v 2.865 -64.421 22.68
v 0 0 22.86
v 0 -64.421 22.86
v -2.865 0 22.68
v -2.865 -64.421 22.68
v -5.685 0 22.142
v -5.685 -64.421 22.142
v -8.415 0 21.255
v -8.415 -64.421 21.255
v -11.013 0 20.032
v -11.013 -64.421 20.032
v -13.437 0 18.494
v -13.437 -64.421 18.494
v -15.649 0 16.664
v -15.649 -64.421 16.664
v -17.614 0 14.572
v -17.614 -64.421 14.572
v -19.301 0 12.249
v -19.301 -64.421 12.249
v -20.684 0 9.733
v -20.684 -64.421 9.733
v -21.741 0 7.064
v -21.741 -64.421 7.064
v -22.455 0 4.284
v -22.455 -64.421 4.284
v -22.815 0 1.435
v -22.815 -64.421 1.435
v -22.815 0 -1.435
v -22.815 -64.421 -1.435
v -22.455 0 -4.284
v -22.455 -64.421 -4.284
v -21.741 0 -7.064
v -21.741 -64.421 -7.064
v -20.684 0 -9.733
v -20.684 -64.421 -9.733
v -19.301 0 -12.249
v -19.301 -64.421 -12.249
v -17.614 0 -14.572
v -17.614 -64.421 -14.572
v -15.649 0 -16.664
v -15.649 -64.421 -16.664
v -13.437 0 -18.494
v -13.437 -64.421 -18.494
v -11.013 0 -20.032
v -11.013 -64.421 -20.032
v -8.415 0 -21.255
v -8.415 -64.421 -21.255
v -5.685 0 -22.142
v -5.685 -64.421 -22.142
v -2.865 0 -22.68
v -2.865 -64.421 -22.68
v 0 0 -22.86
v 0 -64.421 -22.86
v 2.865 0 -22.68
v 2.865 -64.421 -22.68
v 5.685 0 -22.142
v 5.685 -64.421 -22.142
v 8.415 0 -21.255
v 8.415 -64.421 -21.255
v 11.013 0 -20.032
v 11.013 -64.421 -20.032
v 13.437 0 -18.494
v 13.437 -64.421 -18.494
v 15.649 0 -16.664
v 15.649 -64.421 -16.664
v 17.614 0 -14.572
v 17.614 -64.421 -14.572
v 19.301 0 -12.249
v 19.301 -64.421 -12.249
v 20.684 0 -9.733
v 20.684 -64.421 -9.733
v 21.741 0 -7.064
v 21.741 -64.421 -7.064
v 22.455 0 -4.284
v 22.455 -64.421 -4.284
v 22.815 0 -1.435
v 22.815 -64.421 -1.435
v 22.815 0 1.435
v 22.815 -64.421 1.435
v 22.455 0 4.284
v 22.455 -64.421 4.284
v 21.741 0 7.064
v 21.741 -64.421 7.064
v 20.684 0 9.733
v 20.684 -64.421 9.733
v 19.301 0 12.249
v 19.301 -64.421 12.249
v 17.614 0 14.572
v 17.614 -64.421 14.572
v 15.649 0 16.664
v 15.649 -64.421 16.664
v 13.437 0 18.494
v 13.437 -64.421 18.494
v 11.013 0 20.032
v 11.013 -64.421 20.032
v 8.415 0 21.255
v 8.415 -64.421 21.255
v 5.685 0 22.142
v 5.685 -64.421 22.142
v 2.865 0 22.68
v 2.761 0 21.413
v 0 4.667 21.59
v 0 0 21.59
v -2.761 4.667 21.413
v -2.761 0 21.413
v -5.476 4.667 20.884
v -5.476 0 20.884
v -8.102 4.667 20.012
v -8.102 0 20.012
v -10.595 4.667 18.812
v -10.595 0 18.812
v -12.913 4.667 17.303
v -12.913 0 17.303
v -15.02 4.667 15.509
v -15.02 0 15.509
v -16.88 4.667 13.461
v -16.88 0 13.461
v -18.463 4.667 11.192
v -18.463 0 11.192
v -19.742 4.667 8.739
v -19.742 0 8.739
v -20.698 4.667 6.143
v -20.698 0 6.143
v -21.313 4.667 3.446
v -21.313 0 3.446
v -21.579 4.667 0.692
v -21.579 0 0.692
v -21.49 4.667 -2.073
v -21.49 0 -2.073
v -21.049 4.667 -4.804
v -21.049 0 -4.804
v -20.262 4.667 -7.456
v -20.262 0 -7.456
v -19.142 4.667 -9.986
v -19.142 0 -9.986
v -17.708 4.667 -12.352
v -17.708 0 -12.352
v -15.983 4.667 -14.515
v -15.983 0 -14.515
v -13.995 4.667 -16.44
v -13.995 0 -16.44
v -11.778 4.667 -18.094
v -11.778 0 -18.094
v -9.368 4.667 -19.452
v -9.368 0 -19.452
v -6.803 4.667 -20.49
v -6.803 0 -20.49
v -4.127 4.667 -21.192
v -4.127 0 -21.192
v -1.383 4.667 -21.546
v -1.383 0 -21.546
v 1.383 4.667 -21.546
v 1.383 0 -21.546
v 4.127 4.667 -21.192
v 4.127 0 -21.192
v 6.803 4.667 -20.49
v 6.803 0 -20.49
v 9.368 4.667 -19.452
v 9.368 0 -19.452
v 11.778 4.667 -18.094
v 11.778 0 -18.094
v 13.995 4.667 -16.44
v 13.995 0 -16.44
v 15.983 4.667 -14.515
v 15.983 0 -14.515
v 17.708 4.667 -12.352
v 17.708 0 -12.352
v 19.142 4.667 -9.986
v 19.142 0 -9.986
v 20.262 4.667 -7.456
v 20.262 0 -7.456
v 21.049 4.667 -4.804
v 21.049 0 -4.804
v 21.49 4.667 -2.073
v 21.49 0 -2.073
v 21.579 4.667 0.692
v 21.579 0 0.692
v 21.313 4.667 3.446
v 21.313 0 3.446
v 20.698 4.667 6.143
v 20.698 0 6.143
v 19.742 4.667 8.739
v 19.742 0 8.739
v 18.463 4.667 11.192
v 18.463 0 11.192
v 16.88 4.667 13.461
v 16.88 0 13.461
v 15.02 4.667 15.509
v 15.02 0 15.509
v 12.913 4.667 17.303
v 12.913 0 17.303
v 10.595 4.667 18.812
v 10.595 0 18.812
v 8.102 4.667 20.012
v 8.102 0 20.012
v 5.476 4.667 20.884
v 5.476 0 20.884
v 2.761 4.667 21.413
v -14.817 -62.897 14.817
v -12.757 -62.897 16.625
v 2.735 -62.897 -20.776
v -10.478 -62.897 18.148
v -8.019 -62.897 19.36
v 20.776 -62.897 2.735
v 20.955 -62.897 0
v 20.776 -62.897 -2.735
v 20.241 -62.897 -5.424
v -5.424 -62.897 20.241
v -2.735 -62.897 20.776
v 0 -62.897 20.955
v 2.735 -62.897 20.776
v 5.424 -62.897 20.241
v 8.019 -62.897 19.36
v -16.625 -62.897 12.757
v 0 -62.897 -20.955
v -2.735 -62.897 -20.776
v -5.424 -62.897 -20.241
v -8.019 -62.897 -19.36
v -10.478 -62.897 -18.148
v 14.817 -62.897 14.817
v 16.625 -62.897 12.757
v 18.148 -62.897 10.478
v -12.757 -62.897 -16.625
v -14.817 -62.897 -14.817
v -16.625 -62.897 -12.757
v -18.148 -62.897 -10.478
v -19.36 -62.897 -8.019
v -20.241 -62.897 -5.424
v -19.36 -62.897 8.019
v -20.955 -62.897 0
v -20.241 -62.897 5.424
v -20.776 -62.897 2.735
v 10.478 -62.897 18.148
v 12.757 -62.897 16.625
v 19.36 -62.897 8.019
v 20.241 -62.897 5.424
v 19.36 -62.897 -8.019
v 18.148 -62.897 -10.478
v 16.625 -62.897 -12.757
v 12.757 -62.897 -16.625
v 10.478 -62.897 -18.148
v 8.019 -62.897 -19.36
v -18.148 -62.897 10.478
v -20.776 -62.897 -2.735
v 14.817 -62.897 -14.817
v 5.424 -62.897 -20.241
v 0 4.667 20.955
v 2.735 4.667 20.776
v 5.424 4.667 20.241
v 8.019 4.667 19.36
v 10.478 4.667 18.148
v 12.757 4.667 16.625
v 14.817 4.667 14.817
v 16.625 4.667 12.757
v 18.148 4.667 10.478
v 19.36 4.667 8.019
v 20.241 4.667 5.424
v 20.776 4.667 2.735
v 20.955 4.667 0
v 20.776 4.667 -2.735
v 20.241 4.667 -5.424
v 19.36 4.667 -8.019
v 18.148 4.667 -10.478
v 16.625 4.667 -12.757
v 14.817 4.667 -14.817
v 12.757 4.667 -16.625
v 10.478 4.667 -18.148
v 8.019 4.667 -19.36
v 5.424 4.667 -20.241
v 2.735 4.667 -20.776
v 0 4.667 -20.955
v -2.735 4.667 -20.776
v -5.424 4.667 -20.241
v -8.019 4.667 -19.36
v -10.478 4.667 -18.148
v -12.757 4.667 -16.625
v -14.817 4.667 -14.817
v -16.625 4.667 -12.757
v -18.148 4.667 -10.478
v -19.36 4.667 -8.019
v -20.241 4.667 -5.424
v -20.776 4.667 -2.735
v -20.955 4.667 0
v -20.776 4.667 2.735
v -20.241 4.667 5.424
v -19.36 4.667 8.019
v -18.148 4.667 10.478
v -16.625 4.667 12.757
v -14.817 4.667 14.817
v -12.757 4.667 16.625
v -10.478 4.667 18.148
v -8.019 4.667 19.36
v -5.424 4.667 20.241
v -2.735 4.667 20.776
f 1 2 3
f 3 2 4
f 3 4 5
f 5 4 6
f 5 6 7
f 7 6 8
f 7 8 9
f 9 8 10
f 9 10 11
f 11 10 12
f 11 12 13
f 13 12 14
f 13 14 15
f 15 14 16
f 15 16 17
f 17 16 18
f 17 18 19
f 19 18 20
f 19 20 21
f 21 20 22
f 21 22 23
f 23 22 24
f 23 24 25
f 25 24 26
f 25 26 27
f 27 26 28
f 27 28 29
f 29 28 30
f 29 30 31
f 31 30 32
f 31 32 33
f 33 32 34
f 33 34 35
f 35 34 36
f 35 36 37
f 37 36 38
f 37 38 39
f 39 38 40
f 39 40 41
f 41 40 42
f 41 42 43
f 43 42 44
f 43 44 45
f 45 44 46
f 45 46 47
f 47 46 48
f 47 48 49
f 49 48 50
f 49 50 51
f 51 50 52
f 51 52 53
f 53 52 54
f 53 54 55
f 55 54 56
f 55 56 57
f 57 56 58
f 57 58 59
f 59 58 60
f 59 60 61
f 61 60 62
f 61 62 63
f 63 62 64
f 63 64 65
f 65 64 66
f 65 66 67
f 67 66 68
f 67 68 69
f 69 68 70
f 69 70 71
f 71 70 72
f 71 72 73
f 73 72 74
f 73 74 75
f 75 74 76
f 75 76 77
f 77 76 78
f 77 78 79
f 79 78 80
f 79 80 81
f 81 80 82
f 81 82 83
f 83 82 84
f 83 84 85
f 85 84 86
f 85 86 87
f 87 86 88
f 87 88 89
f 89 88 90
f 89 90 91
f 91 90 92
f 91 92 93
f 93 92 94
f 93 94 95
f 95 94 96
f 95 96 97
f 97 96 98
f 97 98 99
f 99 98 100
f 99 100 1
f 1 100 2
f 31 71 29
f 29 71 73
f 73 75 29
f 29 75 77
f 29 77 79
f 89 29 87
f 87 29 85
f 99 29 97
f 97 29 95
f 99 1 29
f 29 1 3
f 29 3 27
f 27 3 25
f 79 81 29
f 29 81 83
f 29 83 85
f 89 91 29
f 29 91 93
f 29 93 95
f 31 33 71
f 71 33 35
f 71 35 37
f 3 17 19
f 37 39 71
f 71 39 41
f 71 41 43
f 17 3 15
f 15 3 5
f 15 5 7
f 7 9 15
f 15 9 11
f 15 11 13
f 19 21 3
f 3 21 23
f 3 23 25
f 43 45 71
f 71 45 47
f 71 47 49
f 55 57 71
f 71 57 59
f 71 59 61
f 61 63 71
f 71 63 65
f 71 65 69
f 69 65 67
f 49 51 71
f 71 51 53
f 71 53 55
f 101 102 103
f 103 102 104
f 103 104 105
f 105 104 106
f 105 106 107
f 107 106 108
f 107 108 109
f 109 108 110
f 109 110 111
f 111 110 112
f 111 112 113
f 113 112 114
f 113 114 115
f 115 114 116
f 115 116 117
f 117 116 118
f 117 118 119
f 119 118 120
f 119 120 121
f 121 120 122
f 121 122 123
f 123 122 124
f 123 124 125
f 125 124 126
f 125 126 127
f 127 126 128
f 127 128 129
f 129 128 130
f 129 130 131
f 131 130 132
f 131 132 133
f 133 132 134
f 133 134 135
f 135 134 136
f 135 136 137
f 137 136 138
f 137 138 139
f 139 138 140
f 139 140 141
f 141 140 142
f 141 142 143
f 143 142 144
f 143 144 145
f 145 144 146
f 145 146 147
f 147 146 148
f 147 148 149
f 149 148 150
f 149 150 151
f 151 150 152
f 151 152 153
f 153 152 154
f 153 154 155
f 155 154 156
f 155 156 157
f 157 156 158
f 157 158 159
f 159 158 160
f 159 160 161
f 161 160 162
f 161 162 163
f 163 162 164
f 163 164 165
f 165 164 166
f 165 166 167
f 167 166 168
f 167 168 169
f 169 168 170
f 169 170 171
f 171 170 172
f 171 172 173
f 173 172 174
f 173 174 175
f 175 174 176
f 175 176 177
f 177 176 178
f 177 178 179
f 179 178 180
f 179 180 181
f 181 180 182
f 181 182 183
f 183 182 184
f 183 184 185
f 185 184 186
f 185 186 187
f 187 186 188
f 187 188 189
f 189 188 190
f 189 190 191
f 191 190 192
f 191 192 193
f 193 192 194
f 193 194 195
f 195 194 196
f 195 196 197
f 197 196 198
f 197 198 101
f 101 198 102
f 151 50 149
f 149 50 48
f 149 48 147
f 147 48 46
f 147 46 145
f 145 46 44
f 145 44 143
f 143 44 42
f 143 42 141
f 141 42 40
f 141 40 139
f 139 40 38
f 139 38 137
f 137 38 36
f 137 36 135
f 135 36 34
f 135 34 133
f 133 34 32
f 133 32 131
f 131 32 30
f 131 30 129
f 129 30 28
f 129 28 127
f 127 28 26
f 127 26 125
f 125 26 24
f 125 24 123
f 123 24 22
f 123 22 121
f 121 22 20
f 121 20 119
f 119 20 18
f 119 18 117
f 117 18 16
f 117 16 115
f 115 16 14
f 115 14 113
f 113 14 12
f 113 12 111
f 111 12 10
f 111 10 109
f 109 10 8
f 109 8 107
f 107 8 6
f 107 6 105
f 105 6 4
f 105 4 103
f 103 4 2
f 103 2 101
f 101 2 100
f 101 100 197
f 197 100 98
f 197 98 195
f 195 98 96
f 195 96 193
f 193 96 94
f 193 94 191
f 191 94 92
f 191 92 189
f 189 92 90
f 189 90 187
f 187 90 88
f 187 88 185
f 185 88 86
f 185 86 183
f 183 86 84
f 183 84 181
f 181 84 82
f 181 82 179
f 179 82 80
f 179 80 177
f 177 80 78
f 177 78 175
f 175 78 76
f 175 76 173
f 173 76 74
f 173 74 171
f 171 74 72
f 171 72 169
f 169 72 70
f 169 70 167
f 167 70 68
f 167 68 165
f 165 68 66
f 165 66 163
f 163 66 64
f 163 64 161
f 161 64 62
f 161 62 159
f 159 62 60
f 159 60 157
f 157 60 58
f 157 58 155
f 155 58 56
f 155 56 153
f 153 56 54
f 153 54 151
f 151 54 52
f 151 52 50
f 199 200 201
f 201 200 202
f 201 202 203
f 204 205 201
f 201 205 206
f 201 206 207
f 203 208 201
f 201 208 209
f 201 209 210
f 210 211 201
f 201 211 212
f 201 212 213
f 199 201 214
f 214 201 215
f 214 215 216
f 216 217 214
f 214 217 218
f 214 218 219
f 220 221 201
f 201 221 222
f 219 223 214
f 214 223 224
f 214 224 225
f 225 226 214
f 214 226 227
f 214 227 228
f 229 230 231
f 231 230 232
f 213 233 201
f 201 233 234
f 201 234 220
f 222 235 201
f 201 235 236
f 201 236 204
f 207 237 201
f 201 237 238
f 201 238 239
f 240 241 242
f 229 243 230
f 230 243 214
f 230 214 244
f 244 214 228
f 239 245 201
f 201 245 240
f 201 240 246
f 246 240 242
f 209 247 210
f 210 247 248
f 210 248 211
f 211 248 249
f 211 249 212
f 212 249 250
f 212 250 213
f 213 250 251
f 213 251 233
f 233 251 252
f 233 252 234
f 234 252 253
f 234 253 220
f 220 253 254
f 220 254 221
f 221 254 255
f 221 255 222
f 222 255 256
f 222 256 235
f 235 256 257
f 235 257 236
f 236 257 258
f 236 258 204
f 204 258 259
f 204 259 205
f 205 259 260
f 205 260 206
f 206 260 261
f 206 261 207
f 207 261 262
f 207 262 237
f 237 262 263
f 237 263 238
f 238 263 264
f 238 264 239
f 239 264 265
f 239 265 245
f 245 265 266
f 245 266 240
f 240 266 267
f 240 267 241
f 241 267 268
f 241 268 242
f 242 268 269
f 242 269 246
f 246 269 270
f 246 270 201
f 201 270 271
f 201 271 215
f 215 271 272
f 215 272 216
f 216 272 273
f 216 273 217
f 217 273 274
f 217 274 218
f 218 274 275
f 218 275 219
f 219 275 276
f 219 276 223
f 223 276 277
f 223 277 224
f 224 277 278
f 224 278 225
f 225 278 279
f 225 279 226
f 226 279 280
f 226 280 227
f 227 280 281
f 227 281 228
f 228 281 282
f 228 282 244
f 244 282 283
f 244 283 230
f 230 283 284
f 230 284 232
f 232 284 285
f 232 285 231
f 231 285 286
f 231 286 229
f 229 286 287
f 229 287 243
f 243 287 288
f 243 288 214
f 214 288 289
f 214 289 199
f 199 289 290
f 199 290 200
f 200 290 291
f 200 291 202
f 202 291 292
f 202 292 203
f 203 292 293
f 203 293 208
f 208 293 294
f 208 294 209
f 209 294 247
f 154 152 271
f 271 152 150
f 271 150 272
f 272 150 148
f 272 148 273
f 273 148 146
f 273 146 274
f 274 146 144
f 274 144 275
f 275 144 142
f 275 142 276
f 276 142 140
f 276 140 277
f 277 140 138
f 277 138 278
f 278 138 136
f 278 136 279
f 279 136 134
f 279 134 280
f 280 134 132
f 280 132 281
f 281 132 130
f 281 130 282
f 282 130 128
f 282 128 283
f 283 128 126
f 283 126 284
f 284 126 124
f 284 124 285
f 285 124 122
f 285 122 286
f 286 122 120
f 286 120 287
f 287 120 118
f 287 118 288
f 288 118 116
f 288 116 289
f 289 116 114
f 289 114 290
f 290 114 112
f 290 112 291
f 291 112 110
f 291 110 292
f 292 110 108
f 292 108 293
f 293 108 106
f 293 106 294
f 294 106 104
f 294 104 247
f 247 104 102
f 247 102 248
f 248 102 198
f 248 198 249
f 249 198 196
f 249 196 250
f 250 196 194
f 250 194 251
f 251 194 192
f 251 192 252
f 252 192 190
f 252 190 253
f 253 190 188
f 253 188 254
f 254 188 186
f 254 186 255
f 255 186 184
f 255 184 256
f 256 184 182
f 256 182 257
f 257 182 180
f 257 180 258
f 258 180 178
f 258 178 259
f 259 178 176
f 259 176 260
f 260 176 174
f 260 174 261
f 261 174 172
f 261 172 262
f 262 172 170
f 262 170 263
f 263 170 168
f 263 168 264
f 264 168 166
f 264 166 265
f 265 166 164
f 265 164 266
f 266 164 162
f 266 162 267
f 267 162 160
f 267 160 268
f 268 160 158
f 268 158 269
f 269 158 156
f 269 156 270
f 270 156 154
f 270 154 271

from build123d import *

# Parameters (mm, degrees)
CUT_EXTRUDE1_REACH = 78.278
SKETCH2_R          = 22.225
SKETCH2_R_2        = 21.59


with BuildPart() as part:
    # Sketch1 → Revolve1 (revolve)
    with BuildSketch(Plane.XY, mode=Mode.PRIVATE) as revolve1_sk:
        Polygon((22.86, 0), (22.86, -64.42075), (0, -64.42075), (0, -62.89675), (20.955, -62.89675), (20.955, 4.66725), (22.225, 4.66725), (22.225, 2.286), (21.59, 2.286), (21.59, 0), (22.225, 0), align=None)
    revolve(revolve1_sk.sketch.rotate(Axis((0, 33.267670174, 0), (0, -1, 0)), 90), axis=Axis((0, 33.267670174, 0), (0, -1, 0)))

    # Sketch2 → Cut-Extrude1 (cut, up to next)
    with BuildSketch(Plane(origin=(0, 4.66725, 0), x_dir=(1, 0, 0), z_dir=(0, 1, 0)), mode=Mode.PRIVATE) as cut_extrude1_sk1:
        Circle(SKETCH2_R)
        with Locations(Location((0, 0, 0), (0, 0, 270))):
            Circle(SKETCH2_R_2, mode=Mode.SUBTRACT)
    cut_extrude1_tool1 = extrude(cut_extrude1_sk1.sketch, amount=-CUT_EXTRUDE1_REACH, mode=Mode.PRIVATE) & part.part
    add(cut_extrude1_tool1.solids().sort_by_distance((-21.596382, 4.66725, 0))[0], mode=Mode.SUBTRACT)


solid = part.part
